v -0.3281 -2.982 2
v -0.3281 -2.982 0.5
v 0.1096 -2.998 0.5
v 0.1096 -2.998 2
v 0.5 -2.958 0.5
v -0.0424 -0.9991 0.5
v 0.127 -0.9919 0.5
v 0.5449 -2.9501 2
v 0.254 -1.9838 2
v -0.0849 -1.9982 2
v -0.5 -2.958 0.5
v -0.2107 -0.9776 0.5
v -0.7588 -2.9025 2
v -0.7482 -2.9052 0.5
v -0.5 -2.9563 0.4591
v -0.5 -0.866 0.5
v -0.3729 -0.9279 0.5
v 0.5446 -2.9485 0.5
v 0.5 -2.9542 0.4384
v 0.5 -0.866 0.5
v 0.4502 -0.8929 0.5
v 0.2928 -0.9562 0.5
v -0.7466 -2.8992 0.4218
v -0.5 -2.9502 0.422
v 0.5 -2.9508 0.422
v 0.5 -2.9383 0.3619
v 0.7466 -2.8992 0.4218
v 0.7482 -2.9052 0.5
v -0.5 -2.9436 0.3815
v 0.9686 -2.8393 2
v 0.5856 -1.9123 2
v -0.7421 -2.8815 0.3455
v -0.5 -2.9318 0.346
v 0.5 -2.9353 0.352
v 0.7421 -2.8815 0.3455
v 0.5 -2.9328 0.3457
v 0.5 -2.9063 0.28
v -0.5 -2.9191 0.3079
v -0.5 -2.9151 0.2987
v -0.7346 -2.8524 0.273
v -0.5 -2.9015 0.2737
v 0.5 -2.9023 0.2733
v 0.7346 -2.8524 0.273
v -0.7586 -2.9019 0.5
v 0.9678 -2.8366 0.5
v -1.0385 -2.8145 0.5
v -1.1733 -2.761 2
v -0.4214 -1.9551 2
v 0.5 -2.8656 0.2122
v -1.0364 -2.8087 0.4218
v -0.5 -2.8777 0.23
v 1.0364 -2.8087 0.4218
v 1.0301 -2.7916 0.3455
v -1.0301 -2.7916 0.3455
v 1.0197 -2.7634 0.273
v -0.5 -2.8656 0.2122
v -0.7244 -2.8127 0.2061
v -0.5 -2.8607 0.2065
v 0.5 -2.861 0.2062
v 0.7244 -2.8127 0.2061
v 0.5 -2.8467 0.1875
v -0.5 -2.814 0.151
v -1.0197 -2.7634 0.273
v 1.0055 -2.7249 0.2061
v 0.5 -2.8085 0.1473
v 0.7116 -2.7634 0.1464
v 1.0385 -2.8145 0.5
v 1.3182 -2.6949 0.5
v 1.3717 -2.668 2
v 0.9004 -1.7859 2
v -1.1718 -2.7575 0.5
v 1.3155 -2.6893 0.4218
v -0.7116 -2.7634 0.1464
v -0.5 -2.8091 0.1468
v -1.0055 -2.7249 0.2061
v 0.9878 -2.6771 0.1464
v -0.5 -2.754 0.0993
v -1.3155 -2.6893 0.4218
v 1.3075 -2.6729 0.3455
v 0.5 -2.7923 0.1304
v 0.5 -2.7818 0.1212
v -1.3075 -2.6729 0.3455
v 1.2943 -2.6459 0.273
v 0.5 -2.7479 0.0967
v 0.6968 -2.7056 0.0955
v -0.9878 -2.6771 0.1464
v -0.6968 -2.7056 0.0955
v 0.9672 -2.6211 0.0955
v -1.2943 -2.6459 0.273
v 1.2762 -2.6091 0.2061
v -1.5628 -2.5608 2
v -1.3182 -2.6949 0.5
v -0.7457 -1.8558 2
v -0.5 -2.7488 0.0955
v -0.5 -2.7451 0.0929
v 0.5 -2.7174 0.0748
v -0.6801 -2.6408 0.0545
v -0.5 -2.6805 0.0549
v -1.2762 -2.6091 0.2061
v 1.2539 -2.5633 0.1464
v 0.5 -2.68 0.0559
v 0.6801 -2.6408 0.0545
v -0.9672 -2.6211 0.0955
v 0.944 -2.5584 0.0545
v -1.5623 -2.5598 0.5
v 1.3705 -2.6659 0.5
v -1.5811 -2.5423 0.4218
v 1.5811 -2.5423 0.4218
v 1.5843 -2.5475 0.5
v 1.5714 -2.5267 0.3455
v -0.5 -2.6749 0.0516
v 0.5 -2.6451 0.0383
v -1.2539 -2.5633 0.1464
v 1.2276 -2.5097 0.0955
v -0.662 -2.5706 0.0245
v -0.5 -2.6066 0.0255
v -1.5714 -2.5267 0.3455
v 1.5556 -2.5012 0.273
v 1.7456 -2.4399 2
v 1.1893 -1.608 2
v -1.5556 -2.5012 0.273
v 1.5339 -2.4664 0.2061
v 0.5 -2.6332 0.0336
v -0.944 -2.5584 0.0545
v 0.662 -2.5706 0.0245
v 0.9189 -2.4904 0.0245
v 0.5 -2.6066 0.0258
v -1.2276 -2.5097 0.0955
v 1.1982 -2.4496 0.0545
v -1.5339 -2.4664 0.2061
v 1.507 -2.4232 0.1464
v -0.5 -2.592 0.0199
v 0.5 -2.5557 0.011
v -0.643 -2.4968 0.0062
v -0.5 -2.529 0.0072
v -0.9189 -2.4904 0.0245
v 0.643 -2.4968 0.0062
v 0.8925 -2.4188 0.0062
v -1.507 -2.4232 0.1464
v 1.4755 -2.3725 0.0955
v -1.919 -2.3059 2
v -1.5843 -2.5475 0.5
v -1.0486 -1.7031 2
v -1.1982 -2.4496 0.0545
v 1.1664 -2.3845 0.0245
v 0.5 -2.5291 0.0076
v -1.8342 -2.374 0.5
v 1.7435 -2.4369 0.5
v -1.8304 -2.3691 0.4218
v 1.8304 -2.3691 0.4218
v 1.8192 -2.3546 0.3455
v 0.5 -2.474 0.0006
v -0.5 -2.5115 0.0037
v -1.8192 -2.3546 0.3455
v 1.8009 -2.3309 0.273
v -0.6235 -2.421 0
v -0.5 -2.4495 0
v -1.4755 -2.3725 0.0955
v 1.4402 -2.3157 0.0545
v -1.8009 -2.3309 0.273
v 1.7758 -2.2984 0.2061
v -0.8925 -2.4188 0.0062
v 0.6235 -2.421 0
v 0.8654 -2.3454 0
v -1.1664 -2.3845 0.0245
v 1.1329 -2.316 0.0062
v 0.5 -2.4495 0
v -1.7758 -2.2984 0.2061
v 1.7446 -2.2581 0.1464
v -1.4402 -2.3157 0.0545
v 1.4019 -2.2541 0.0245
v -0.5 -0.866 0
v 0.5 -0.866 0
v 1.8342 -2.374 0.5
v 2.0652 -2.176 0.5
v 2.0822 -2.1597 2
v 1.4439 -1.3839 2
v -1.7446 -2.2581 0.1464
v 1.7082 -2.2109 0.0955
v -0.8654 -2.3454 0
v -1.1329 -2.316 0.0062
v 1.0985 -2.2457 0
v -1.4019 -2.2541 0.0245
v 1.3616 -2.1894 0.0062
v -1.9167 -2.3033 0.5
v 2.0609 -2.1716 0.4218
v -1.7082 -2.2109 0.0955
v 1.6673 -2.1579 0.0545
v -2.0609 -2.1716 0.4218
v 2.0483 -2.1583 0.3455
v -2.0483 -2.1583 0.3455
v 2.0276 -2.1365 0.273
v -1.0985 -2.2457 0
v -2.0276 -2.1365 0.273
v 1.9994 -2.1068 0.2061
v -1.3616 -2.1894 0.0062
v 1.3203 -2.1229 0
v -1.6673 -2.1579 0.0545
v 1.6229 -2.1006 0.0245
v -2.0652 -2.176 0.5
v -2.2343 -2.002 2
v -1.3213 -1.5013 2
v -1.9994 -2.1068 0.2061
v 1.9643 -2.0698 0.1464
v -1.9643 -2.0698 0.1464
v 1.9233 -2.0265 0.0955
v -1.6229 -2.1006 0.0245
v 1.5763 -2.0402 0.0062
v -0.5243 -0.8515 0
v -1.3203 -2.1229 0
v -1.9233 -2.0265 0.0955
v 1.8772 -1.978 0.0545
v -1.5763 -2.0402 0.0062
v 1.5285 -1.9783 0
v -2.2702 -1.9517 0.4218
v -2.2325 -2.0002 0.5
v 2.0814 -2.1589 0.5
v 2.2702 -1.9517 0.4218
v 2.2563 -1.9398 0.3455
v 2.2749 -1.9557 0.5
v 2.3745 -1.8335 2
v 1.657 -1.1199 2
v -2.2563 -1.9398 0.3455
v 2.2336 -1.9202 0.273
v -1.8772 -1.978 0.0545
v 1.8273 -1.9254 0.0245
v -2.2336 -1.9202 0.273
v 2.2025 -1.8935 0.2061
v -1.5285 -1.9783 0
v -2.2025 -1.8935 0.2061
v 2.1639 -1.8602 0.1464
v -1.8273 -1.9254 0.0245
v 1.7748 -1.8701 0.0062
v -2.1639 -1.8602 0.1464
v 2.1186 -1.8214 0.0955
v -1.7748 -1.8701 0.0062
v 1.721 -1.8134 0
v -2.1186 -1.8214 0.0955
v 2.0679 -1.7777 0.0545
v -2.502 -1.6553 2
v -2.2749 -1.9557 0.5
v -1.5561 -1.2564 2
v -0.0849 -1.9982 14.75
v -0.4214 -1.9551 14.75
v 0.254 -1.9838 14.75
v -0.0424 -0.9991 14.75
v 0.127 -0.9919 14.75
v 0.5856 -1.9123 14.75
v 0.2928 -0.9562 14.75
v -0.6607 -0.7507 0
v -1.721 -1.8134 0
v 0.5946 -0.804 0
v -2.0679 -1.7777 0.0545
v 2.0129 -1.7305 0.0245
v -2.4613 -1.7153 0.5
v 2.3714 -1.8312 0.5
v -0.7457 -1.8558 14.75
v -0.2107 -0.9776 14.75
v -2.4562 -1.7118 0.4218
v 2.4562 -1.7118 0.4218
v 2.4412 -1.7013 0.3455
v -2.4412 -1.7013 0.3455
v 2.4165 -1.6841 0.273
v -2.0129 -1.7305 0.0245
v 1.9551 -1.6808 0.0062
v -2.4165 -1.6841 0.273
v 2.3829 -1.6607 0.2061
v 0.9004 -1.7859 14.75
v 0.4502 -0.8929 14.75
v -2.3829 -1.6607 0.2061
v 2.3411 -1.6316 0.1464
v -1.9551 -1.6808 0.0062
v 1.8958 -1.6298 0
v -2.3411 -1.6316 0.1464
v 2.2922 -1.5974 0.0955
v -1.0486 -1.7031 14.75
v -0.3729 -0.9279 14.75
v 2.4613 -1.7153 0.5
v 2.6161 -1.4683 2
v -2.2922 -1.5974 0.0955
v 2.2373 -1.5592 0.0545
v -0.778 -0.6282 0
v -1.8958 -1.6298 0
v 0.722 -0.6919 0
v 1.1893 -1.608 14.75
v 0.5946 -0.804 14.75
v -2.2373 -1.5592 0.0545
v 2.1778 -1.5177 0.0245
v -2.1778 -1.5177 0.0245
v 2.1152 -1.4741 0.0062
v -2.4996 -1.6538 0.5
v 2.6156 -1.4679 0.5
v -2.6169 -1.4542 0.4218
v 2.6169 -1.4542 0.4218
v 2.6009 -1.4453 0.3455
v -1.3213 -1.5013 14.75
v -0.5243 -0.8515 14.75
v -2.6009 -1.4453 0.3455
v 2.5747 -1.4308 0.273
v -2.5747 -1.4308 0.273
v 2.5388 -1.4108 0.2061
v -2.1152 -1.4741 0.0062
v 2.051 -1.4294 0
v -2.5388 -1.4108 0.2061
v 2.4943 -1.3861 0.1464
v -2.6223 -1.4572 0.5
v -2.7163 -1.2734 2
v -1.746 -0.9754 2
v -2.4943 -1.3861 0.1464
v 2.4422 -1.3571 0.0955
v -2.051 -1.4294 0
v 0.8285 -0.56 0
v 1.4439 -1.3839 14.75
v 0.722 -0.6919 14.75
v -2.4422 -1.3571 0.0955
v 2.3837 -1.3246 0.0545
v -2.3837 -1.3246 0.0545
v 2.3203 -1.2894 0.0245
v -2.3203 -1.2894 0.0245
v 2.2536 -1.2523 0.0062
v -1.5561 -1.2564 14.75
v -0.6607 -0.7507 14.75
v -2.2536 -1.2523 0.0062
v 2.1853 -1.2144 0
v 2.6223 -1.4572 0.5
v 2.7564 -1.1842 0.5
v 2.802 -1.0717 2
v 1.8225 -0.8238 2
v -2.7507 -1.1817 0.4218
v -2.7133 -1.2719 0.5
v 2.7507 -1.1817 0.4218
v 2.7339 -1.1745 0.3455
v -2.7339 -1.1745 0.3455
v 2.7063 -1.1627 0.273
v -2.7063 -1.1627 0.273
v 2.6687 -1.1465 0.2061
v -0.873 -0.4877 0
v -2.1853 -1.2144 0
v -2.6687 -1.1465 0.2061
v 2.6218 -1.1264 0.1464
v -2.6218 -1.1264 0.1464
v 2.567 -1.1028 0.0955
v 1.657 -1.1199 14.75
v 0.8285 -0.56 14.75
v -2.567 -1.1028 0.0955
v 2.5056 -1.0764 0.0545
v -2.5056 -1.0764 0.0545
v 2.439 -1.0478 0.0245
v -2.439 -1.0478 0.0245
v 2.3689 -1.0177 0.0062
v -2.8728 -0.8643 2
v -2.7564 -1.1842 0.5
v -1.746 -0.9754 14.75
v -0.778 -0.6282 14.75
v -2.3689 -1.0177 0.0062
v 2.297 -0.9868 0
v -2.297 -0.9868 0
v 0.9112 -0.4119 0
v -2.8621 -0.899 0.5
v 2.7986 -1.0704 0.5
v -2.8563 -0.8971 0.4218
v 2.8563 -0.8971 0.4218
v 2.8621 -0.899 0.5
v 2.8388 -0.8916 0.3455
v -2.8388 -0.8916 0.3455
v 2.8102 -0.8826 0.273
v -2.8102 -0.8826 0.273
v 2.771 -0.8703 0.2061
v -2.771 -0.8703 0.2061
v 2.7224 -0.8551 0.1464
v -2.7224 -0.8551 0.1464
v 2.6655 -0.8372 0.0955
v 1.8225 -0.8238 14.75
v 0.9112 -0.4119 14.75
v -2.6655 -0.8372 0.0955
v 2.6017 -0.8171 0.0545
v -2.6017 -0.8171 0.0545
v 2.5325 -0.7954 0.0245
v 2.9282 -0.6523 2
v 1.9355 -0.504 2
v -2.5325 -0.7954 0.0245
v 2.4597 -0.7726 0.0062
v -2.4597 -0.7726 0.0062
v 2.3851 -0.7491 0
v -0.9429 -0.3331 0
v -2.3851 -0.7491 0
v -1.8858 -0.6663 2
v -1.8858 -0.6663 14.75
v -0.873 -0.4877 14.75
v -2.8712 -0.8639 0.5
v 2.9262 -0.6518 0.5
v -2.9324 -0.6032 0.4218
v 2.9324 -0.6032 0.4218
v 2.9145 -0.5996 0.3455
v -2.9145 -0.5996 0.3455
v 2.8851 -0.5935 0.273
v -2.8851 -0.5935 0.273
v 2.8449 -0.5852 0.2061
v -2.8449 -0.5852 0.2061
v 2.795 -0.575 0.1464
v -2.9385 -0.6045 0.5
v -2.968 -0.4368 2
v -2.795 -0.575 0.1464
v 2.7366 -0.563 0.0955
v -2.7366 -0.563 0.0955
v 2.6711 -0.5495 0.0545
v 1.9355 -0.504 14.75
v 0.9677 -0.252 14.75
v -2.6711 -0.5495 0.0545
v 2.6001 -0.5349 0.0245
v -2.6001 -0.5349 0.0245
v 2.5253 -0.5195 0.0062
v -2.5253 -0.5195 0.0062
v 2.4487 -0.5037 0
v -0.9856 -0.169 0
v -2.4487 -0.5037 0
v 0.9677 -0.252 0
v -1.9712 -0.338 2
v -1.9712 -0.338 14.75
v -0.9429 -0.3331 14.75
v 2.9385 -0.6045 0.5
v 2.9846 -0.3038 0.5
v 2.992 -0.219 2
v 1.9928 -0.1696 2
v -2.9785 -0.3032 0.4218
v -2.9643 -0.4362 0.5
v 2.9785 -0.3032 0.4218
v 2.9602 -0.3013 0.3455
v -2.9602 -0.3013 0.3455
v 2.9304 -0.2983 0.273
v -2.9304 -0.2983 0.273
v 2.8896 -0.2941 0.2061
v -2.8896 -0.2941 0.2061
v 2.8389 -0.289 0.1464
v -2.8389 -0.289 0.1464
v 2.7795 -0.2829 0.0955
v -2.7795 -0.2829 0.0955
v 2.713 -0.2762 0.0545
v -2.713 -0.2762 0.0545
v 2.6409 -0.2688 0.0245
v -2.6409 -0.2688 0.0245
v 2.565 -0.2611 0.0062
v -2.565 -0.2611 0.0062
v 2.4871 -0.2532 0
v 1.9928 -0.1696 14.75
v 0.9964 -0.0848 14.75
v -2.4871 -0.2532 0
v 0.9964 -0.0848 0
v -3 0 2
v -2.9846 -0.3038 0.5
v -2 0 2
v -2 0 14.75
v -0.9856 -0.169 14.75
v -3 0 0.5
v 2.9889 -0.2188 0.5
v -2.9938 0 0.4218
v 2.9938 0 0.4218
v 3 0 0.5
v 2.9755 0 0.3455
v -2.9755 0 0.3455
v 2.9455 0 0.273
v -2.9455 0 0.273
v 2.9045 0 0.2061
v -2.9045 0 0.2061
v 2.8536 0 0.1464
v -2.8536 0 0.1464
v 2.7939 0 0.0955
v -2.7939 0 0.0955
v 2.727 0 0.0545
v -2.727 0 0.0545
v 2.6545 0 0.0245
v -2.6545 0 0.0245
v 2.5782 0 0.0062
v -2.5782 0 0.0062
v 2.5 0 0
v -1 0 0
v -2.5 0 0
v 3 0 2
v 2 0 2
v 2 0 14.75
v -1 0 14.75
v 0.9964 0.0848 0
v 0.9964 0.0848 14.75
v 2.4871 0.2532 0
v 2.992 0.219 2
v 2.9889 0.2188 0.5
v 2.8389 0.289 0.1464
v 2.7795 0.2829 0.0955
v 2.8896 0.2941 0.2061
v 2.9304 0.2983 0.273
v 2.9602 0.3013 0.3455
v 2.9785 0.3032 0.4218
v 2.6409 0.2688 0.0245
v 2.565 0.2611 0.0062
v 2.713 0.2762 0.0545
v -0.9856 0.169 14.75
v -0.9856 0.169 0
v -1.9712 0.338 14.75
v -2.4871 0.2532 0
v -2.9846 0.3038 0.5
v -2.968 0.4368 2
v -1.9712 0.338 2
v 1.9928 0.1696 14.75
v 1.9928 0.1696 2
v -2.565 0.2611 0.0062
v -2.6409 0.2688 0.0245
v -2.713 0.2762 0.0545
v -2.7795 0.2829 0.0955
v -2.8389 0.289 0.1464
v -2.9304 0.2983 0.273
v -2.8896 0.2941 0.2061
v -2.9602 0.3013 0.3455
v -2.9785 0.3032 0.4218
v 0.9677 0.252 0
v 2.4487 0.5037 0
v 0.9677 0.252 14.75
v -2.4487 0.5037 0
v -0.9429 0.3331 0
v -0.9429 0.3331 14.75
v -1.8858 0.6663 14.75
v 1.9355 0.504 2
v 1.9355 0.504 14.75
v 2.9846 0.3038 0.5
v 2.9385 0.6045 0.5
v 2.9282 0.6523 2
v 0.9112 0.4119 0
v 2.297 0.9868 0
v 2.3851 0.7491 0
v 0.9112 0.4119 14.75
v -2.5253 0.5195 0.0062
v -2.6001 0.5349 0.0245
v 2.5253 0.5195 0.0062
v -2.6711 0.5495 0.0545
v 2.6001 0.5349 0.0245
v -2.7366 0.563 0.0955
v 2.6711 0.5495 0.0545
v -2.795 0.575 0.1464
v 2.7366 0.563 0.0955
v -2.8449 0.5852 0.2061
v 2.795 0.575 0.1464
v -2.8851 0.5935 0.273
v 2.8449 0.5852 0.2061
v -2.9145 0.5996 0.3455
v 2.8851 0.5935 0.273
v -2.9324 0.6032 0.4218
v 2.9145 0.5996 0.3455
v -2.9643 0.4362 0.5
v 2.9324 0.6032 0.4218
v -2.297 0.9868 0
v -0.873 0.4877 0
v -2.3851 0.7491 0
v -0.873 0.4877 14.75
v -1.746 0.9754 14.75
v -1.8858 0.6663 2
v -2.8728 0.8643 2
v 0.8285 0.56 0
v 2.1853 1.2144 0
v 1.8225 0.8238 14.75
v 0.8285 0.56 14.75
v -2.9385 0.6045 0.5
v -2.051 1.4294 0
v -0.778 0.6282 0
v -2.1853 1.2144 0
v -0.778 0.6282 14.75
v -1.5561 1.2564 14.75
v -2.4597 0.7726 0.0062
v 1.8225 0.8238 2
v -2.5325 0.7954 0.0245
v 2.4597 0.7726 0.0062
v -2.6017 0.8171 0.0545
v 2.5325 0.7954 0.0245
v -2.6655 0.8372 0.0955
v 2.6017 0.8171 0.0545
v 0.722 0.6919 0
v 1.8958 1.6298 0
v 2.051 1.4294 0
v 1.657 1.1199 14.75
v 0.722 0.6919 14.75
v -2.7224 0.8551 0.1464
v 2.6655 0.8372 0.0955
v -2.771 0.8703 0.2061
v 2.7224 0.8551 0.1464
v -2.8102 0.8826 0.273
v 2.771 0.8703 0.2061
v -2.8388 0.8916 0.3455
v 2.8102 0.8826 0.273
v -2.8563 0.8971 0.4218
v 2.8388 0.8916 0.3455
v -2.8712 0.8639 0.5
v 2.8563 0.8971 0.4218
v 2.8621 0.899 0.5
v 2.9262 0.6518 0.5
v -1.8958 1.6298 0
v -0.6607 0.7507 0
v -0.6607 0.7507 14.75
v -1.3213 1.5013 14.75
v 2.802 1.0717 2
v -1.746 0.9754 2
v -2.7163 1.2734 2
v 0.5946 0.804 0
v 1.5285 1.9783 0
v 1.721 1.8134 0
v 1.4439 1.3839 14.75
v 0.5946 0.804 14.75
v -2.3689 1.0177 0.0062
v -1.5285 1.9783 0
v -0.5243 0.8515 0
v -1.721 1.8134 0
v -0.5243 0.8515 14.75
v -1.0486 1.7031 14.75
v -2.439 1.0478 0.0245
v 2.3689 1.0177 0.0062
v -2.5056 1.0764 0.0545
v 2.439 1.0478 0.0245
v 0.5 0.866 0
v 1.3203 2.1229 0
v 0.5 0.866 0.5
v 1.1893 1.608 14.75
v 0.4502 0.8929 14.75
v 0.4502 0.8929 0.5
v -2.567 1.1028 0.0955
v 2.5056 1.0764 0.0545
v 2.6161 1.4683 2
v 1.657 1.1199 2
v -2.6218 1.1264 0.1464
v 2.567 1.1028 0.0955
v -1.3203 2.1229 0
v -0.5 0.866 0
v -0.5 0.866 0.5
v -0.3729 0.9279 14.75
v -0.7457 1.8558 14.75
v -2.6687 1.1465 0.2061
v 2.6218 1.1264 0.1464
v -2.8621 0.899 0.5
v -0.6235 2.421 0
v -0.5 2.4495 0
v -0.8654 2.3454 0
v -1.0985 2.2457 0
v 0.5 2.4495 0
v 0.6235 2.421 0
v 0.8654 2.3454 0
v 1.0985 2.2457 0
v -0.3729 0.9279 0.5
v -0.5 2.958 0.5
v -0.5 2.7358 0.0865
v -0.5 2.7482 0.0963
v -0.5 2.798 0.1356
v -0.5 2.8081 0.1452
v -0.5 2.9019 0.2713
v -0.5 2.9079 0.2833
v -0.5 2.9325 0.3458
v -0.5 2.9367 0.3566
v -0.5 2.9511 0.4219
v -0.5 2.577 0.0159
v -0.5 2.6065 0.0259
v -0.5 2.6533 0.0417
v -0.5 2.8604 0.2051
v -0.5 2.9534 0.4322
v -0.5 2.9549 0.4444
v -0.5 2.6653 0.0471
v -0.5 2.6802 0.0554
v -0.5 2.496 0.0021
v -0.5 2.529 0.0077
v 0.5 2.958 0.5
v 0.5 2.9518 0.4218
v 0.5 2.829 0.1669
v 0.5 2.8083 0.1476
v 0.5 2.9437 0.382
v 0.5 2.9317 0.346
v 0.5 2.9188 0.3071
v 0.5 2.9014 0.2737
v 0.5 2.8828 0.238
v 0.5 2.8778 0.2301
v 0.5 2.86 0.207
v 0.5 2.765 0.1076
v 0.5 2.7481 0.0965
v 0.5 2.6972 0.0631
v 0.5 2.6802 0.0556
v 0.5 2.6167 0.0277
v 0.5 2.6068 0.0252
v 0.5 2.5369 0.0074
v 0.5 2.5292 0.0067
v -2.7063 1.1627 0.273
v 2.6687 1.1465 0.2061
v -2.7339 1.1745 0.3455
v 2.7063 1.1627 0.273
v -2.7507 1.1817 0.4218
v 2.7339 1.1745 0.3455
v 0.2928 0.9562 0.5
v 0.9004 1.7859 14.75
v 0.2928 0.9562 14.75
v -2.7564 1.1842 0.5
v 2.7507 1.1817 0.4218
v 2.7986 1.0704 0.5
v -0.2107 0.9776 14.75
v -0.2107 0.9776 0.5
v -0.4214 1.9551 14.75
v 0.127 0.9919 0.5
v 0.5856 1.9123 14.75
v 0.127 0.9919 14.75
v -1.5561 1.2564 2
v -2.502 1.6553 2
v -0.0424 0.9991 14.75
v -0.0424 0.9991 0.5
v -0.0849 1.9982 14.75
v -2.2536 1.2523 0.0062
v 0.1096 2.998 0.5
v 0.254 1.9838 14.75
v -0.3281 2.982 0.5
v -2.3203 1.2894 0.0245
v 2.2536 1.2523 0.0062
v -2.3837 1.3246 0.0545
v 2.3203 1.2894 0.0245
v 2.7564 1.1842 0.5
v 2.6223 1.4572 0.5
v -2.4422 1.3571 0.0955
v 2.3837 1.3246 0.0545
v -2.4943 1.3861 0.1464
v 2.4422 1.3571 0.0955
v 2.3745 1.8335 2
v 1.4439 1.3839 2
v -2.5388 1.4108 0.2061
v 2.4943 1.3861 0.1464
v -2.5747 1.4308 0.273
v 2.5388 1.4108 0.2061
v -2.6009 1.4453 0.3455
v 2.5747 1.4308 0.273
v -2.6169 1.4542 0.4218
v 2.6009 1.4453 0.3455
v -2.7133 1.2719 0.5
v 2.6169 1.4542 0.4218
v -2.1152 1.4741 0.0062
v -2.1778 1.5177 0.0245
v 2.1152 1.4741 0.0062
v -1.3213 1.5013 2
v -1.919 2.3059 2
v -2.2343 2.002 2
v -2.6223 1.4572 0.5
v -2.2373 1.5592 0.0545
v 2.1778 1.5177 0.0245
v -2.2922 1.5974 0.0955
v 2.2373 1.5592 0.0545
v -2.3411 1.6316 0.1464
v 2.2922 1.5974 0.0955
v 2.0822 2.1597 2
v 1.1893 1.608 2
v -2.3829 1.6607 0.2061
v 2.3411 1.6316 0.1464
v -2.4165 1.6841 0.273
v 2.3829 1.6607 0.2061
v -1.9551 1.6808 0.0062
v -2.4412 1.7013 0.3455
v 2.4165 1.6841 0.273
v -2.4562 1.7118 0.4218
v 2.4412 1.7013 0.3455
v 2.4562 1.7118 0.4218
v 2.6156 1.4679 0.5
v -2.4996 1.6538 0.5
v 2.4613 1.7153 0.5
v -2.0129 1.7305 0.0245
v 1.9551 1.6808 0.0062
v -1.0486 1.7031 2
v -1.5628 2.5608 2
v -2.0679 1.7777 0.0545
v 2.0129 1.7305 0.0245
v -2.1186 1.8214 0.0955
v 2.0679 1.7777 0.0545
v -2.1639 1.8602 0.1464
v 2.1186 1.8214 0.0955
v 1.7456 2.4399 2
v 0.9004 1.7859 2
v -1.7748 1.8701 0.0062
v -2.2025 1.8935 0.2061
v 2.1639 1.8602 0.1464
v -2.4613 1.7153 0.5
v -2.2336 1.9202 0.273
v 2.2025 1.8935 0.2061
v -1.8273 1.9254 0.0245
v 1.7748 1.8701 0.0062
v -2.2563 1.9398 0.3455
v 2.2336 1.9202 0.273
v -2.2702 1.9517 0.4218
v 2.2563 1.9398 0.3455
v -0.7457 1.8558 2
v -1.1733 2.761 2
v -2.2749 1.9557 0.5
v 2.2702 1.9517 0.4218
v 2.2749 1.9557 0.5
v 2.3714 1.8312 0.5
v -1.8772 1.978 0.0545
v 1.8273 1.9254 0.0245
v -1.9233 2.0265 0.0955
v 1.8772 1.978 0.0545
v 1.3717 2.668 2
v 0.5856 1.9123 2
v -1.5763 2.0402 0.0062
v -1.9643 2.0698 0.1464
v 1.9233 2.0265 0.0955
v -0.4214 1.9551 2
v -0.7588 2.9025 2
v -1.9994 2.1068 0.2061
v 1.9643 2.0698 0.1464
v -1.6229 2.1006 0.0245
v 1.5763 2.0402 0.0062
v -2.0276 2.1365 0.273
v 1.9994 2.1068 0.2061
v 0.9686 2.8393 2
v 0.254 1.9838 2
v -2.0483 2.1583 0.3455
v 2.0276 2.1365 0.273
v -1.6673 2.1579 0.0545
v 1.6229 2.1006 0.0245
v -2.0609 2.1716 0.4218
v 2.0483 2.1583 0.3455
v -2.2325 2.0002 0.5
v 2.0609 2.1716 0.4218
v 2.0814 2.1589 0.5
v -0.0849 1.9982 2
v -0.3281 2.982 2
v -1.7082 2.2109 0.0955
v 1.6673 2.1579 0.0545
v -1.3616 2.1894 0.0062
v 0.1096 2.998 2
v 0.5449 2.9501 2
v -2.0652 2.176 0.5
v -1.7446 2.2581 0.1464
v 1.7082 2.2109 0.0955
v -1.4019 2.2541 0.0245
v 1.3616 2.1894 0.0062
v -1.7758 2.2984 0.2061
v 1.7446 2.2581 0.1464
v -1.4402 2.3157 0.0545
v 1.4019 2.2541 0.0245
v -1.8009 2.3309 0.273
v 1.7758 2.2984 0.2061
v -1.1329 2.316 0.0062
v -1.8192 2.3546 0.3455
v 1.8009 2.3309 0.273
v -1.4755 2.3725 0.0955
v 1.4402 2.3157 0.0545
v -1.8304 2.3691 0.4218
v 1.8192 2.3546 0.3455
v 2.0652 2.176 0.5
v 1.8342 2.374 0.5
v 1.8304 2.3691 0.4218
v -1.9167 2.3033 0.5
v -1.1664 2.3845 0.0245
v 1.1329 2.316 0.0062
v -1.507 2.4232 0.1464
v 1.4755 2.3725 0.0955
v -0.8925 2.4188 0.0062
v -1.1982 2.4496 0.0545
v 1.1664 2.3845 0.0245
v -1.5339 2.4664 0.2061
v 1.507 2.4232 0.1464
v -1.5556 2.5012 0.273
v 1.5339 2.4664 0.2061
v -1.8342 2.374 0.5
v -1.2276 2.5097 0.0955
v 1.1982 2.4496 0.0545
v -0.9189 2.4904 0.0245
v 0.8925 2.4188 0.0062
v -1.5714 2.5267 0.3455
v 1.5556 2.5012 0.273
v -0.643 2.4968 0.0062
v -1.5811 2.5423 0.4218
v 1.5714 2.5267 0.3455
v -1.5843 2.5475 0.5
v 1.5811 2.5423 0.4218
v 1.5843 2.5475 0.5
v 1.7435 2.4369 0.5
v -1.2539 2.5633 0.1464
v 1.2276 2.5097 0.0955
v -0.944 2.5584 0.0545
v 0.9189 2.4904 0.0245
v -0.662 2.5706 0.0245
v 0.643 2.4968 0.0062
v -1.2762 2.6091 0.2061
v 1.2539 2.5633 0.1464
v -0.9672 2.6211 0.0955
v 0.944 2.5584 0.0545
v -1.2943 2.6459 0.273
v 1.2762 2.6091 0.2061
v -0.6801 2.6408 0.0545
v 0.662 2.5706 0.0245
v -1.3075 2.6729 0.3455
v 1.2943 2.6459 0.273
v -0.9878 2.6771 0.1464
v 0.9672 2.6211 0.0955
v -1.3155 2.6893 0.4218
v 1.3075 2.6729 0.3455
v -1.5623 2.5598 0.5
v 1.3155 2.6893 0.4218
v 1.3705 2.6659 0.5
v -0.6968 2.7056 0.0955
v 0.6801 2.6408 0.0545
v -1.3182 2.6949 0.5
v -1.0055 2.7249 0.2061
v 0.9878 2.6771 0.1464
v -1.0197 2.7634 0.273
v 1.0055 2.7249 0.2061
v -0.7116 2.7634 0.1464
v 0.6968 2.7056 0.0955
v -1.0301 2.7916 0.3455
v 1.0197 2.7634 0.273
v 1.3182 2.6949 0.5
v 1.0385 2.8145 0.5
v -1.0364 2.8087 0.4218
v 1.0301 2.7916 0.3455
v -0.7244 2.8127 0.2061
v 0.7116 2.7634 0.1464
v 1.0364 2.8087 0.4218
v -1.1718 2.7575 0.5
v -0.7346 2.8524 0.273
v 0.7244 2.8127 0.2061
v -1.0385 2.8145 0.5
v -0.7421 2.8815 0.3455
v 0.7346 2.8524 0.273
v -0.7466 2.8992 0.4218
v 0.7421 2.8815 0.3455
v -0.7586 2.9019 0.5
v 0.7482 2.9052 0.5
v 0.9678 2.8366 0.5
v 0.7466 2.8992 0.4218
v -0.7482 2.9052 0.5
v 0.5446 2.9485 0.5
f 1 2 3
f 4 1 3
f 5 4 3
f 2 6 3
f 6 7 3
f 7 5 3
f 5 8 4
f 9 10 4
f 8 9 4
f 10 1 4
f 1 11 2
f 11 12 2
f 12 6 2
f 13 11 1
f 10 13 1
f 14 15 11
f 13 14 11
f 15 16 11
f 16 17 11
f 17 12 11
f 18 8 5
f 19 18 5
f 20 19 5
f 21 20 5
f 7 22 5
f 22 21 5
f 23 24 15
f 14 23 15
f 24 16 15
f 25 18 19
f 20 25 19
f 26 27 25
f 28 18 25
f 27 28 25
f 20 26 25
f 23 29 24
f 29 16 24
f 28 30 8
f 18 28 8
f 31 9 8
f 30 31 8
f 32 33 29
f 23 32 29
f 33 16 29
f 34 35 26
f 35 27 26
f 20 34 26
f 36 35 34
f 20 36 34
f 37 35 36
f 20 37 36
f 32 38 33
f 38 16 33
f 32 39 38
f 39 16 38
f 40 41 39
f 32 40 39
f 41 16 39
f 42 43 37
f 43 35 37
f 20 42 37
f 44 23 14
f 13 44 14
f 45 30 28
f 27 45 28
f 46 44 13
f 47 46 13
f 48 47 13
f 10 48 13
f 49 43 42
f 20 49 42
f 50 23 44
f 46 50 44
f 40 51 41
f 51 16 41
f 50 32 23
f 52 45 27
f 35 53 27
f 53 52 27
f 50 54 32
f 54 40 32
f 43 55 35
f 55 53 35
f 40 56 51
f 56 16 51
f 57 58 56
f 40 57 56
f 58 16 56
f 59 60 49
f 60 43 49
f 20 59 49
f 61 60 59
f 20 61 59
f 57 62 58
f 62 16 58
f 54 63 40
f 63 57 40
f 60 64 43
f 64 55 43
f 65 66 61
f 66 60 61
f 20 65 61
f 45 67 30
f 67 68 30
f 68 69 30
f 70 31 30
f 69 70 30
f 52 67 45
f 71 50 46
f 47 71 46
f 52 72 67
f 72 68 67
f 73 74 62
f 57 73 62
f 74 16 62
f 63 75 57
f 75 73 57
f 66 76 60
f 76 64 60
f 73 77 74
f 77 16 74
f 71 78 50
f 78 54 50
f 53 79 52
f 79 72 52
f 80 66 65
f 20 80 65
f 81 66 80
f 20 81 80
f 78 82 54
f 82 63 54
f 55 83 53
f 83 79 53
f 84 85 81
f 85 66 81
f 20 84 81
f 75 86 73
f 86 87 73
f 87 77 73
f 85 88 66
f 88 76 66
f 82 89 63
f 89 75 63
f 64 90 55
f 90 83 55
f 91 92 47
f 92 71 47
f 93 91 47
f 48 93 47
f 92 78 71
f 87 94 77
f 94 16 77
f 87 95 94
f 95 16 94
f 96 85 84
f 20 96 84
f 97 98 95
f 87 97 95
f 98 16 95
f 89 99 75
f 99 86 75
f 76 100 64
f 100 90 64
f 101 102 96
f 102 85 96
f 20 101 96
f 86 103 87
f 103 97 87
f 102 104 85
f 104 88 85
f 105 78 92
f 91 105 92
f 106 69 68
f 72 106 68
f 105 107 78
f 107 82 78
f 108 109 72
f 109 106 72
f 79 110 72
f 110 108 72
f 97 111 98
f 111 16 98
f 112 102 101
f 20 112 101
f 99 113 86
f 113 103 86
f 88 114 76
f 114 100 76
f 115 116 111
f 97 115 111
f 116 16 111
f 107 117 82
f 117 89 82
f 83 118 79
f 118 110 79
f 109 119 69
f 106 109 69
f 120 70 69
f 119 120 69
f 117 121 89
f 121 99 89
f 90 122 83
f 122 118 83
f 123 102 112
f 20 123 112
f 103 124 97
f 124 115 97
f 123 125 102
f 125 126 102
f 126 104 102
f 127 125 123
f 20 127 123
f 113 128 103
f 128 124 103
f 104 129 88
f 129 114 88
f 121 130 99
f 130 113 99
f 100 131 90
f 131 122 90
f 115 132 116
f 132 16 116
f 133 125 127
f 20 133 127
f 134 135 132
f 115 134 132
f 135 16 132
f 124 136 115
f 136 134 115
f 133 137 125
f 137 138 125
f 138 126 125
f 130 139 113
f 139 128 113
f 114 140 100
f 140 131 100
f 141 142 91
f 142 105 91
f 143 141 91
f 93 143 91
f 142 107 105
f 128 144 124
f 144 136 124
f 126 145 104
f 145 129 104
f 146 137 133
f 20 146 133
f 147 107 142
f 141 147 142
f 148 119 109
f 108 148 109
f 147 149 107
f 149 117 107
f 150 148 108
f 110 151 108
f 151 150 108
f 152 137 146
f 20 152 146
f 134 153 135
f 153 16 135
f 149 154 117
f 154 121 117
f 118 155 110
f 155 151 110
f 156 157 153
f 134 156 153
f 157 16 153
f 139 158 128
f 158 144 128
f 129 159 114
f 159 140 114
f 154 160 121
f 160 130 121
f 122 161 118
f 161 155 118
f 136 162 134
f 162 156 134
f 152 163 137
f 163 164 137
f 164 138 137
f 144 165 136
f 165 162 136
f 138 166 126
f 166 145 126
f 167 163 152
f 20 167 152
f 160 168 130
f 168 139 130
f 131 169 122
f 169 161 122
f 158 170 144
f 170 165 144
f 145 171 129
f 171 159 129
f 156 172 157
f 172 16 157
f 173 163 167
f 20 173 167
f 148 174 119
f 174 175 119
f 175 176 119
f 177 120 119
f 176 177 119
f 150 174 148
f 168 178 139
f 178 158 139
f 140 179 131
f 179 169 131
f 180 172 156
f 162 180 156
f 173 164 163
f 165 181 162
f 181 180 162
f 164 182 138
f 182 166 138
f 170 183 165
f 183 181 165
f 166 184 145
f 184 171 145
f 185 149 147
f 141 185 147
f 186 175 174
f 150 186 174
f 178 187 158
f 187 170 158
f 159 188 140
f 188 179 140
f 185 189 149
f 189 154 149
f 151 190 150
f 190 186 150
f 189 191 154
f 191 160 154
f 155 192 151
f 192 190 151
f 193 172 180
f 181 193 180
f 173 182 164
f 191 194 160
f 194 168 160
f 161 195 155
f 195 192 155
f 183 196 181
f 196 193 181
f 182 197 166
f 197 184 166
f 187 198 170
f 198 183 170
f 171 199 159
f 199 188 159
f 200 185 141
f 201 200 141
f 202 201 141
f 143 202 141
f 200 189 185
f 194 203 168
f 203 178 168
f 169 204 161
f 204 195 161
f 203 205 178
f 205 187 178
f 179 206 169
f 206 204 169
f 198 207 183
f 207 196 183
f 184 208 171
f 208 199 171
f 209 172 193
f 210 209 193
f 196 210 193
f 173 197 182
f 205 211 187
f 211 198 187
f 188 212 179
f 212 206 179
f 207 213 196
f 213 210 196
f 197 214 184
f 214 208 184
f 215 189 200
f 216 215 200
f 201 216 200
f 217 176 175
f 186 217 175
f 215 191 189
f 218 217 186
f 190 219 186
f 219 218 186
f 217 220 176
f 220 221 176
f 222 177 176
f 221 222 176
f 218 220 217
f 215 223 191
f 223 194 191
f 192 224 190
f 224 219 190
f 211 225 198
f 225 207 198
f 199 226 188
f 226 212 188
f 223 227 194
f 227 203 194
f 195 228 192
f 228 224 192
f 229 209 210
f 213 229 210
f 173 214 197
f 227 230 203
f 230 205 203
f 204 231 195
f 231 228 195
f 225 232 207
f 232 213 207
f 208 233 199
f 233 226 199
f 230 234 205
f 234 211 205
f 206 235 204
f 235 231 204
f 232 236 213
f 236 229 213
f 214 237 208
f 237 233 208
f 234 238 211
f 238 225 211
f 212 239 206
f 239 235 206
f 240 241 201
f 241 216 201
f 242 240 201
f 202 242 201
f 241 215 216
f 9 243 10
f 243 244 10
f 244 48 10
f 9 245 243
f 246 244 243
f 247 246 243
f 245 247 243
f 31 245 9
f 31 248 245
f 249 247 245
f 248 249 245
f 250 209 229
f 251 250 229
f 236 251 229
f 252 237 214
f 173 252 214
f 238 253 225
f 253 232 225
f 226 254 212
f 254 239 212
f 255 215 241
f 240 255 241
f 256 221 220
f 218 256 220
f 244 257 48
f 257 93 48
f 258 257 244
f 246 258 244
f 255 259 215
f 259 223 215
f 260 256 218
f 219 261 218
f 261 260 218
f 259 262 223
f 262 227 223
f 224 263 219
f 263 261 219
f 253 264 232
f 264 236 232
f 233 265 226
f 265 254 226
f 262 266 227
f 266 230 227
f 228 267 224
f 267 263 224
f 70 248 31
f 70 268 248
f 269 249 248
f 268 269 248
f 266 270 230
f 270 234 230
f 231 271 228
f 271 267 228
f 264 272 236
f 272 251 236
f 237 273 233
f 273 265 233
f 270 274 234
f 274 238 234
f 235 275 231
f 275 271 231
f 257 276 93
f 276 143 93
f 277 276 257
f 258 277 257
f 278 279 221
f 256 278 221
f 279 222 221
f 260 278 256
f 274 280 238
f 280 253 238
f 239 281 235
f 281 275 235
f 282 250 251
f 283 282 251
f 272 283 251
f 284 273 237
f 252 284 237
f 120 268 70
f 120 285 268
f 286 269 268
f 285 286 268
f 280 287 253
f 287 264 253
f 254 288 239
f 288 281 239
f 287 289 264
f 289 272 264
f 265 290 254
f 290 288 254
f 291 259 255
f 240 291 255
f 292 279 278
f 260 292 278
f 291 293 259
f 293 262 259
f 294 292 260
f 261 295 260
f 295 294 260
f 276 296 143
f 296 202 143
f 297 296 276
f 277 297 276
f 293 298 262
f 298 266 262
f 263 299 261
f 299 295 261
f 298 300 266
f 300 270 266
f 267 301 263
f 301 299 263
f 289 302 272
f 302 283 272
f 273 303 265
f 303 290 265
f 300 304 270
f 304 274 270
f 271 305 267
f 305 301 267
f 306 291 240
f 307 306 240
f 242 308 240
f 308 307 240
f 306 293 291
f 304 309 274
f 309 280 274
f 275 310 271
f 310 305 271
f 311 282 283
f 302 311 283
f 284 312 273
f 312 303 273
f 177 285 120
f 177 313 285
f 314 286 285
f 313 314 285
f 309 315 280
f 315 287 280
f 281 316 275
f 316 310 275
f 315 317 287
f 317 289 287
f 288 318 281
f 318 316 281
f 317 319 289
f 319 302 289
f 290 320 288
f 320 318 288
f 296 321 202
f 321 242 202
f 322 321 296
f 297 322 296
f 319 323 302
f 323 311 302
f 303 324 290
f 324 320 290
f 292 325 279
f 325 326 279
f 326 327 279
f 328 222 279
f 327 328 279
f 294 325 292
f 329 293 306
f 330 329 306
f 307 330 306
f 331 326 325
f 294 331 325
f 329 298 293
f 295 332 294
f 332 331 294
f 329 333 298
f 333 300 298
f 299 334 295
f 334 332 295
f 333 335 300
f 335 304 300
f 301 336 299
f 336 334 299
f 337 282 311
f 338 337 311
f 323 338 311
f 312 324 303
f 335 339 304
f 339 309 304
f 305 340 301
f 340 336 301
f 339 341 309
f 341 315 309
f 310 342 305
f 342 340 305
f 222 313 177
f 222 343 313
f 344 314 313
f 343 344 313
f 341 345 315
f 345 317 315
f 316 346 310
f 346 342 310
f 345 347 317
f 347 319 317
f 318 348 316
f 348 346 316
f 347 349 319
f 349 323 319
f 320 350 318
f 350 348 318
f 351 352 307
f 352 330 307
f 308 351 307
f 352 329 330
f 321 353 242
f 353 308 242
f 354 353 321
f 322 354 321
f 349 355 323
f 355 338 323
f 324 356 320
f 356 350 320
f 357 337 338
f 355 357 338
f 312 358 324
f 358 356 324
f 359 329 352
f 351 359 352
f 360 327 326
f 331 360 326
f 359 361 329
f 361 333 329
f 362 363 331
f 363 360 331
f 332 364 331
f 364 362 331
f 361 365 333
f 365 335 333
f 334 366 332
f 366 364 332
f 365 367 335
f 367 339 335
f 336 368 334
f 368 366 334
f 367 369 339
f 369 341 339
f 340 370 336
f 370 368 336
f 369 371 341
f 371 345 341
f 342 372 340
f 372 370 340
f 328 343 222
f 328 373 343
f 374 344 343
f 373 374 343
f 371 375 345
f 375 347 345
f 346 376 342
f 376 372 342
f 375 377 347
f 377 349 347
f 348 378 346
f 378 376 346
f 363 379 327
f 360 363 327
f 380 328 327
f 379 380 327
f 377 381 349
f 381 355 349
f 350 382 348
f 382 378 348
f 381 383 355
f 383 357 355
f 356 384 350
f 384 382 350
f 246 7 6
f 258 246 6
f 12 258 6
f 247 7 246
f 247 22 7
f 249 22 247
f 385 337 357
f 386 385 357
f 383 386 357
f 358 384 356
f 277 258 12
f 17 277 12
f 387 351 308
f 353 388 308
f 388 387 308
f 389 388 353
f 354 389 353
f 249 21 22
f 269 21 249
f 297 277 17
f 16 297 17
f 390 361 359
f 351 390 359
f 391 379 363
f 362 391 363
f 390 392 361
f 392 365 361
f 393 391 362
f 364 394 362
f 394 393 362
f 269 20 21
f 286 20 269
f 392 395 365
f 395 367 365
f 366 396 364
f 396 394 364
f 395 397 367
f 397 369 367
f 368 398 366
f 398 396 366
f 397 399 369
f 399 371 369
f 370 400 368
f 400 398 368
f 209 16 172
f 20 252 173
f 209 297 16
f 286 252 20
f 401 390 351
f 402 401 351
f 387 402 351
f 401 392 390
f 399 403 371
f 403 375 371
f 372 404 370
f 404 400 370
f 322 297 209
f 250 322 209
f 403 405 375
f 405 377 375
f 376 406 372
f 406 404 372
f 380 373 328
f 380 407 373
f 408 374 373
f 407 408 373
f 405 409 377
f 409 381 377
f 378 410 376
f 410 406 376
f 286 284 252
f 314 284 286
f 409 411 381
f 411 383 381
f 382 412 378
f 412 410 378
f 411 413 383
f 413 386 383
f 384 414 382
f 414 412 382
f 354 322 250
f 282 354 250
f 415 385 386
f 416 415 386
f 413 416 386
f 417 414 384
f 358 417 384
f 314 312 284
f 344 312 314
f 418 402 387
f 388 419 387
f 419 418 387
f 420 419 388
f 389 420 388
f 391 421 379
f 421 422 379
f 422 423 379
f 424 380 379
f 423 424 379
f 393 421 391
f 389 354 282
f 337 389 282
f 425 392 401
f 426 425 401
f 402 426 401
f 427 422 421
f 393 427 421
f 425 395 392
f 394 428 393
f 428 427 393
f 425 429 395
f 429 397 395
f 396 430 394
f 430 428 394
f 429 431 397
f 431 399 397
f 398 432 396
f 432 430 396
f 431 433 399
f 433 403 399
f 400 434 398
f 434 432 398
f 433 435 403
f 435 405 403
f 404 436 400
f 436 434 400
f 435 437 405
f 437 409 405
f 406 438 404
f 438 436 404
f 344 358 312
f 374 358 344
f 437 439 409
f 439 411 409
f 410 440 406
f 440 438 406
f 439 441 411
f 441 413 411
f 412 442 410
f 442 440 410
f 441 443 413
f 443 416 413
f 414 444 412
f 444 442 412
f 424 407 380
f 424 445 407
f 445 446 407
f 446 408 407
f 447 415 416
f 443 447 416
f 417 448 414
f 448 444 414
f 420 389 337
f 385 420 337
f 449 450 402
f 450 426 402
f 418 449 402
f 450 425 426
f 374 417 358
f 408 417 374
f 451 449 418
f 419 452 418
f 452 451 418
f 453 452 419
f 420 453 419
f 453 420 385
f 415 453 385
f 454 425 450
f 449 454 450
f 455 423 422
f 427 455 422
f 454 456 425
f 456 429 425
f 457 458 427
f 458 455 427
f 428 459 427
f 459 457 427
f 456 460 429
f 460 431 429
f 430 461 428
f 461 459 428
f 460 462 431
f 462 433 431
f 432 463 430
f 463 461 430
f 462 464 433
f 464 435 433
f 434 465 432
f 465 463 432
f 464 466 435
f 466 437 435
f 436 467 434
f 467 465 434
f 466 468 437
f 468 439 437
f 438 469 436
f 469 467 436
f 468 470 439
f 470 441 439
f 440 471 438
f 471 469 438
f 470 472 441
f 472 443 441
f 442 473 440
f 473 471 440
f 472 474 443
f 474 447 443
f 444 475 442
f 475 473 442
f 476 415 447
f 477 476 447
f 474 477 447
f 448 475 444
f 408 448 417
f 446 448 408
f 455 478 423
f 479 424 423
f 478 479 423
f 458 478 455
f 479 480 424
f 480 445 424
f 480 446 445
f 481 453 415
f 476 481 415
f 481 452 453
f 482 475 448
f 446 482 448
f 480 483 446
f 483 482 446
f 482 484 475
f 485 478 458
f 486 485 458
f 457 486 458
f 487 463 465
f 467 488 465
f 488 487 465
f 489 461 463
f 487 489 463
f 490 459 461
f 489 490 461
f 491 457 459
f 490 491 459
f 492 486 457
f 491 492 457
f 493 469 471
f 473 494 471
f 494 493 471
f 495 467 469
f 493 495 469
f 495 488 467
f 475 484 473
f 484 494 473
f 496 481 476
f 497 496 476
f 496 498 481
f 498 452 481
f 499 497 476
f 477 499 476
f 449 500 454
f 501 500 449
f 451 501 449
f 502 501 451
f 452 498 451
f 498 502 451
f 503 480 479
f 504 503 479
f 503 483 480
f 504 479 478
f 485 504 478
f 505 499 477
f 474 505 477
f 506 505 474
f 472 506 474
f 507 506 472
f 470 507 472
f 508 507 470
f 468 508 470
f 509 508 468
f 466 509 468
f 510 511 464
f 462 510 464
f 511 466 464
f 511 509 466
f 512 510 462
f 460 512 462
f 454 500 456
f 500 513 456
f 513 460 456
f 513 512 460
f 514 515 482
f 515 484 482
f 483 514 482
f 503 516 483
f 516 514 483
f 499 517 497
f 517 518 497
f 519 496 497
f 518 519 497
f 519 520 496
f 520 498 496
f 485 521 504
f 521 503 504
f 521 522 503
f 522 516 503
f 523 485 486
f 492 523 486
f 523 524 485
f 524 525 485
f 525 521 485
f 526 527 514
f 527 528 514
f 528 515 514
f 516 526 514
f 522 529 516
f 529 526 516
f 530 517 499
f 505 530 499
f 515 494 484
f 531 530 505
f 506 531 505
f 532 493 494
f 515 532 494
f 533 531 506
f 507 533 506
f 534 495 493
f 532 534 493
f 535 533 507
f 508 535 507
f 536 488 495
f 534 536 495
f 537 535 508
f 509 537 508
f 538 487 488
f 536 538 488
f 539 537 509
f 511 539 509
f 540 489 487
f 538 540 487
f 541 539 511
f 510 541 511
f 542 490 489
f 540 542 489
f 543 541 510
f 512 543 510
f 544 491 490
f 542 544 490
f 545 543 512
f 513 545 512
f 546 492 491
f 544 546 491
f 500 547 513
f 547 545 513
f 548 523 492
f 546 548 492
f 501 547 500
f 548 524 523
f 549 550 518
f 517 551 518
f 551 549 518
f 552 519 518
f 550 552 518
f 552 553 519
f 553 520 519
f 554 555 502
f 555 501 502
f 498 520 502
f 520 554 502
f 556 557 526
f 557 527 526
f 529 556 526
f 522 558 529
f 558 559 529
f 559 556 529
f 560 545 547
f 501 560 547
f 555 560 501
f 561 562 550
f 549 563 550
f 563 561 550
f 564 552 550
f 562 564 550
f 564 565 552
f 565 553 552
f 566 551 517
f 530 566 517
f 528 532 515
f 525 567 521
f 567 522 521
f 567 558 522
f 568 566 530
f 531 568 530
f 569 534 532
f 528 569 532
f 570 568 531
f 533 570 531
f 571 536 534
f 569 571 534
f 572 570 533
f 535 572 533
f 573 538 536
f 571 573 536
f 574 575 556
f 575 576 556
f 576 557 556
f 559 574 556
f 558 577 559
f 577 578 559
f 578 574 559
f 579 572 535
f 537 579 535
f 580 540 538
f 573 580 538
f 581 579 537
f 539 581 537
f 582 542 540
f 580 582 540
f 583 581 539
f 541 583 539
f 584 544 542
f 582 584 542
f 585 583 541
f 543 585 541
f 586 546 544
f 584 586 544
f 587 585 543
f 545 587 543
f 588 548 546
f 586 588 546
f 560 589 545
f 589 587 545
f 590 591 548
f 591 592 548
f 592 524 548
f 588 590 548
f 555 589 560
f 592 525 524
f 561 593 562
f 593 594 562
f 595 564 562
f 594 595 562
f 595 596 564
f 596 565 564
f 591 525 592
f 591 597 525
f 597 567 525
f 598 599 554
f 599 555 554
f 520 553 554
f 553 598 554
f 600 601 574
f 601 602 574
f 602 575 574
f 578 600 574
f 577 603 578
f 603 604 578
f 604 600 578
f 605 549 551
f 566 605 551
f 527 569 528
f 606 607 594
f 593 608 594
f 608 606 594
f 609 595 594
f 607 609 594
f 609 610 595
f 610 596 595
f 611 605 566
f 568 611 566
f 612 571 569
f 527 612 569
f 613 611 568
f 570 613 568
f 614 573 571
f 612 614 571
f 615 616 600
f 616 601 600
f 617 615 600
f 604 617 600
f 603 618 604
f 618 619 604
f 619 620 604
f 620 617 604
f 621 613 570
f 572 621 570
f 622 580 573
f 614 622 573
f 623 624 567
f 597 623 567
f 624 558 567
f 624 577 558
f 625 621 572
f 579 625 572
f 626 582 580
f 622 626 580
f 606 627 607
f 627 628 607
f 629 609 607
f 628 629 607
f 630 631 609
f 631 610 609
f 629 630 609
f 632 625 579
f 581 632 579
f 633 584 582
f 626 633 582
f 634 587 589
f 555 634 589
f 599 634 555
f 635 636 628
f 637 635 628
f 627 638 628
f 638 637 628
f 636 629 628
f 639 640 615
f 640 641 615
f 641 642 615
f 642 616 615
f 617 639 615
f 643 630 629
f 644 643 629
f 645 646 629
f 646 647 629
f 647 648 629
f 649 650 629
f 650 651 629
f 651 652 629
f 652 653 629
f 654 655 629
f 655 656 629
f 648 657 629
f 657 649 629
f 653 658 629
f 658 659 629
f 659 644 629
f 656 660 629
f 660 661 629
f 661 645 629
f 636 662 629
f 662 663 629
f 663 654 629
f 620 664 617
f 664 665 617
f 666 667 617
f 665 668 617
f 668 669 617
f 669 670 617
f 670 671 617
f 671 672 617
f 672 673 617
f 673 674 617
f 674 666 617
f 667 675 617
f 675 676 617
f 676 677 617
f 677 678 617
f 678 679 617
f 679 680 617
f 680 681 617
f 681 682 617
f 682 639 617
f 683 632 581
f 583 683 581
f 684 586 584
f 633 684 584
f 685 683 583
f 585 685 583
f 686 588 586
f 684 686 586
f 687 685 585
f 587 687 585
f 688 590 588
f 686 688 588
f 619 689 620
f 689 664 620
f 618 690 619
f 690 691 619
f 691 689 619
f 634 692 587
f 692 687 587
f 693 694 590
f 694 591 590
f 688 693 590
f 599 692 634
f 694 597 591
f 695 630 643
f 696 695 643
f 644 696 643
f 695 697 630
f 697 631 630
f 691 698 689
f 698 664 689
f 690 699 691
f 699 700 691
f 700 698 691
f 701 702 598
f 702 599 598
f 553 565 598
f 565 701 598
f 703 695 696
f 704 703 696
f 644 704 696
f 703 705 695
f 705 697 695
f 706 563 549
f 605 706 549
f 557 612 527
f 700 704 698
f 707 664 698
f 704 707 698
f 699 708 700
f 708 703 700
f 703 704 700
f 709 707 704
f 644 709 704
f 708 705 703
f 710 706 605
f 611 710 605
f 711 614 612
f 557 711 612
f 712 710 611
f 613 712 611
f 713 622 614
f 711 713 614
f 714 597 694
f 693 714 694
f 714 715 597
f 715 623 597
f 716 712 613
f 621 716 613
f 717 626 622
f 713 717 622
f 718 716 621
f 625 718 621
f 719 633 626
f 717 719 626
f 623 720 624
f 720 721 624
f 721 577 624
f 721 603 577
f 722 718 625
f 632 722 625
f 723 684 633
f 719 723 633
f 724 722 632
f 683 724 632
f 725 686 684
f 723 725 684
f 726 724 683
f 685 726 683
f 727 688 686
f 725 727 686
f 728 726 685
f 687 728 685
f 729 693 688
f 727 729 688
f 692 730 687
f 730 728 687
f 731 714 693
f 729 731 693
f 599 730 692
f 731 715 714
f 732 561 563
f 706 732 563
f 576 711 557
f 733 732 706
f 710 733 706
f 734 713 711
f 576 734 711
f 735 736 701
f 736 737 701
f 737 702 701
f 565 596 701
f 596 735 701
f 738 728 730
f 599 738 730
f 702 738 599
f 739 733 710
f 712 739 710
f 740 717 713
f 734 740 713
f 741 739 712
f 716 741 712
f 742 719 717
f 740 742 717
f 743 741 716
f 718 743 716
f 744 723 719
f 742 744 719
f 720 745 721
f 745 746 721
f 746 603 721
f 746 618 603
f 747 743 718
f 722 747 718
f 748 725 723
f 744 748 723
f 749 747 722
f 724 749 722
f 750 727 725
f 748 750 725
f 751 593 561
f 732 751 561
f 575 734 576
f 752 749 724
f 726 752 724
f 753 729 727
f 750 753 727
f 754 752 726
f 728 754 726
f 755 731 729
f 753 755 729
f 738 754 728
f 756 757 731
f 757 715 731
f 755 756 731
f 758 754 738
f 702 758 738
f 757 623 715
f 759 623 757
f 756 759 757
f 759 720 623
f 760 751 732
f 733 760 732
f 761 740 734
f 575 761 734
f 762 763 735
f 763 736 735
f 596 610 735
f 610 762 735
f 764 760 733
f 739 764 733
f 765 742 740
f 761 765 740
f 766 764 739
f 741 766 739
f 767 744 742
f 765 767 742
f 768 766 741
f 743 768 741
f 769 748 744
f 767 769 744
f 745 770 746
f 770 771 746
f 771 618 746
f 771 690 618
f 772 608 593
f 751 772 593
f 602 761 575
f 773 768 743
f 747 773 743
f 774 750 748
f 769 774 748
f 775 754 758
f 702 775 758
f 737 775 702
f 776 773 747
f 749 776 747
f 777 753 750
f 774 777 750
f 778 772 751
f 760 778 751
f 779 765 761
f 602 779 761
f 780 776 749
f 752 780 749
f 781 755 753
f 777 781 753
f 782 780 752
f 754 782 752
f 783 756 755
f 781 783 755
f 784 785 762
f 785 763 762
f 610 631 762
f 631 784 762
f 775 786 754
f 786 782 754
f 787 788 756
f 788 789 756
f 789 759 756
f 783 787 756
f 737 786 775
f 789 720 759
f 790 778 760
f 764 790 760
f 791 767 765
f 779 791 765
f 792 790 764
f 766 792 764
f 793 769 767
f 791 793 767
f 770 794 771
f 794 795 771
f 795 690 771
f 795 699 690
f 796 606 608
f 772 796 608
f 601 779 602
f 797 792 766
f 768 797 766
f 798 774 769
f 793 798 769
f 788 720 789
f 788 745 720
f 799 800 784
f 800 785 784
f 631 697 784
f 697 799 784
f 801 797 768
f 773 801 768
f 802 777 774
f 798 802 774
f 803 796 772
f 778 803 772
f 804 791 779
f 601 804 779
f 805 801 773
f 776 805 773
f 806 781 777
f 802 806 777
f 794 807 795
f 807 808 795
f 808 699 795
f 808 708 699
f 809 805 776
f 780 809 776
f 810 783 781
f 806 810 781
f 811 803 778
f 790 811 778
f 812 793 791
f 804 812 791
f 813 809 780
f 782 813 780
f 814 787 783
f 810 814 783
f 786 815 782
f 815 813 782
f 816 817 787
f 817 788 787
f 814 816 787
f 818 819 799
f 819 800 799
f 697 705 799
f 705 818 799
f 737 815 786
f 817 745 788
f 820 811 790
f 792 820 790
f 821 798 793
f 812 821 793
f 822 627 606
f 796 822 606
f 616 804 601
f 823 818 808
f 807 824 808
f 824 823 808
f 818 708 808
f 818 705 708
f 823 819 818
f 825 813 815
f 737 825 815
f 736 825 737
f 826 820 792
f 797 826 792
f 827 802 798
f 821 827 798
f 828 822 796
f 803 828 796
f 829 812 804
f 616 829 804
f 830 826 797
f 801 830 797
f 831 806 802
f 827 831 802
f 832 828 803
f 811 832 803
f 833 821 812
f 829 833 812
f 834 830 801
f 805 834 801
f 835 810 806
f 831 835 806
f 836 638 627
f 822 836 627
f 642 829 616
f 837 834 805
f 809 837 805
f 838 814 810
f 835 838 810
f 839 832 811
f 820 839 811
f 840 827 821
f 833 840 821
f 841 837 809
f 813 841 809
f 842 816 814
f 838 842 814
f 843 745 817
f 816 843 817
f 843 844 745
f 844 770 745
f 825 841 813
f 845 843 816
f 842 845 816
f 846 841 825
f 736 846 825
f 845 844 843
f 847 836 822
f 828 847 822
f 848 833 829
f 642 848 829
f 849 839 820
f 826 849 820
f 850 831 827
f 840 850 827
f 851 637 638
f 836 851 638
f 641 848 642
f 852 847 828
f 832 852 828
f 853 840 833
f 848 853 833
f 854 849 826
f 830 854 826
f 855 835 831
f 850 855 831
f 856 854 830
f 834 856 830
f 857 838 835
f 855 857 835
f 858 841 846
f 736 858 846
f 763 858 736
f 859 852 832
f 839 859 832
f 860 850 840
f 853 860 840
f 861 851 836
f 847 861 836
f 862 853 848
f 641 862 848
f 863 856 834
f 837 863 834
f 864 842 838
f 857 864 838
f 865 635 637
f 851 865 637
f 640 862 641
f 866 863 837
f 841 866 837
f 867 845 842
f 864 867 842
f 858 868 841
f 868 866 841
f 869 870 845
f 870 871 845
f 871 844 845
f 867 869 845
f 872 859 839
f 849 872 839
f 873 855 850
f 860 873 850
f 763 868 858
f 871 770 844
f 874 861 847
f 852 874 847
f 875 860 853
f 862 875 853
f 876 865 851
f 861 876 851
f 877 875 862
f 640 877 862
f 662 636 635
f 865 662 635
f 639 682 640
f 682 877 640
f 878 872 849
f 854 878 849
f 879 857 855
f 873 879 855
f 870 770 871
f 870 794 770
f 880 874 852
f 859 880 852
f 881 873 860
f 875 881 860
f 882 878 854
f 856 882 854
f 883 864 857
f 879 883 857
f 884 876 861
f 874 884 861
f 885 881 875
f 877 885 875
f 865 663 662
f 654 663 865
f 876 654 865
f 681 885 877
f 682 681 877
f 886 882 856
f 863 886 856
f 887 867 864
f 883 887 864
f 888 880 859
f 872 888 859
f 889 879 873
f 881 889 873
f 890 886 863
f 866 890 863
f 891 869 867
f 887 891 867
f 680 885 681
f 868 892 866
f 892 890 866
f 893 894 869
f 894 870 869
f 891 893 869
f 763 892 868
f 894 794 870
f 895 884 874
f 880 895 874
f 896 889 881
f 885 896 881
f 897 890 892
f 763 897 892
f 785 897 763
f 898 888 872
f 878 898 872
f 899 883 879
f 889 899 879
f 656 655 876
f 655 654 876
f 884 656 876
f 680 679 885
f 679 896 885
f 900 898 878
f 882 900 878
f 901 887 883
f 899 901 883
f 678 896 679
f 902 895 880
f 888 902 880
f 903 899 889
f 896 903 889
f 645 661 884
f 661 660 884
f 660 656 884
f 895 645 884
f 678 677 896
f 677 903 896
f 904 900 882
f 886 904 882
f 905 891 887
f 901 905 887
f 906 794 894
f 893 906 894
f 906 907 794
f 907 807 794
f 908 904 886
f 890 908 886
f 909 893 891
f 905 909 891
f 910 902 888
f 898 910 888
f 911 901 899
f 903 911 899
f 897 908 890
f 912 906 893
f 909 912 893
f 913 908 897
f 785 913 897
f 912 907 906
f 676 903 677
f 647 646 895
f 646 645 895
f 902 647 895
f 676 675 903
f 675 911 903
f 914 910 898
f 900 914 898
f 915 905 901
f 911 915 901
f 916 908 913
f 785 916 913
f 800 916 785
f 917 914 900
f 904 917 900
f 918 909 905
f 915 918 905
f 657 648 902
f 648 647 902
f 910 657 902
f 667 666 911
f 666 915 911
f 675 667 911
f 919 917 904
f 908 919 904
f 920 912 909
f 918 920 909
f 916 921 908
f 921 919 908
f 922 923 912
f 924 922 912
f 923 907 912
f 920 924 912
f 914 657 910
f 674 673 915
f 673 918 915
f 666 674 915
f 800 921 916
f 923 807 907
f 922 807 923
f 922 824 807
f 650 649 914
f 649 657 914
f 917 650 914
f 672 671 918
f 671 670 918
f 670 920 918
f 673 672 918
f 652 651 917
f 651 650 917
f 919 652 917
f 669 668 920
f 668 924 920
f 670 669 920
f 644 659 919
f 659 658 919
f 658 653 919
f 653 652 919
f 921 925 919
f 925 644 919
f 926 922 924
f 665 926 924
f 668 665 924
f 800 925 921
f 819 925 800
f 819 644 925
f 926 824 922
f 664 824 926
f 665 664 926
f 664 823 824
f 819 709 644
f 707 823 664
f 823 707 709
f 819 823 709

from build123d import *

# Parameters (mm, degrees)
SKETCH1_R               = 3
BOSS_EXTRUDE1_DEPTH     = 2
FILLET1_R               = 0.5
SKETCH2_R               = 2
BOSS_EXTRUDE2_DEPTH     = 12.75
CUT_EXTRUDE1_DEPTH      = 16.348045478
CUT_EXTRUDE1_DEPTH_BACK = 16.348045478
SKETCH3_R               = 1
SKETCH4_W               = 1
SKETCH4_H               = 6
CUT_EXTRUDE3_DEPTH      = 0.5


with BuildPart() as part:
    # Sketch1 → Boss-Extrude1 (new body)
    with BuildSketch(Plane.XY):
        Circle(SKETCH1_R)
    extrude(amount=BOSS_EXTRUDE1_DEPTH)

    # Fillet1
    fillet1_edges = [part.edges().sort_by_distance(p)[0] for p in [
        (-3, 0, 0),
    ]]
    fillet(fillet1_edges, radius=FILLET1_R)

    # Sketch2 → Boss-Extrude2 (add)
    with BuildSketch(Plane.XY.offset(2)):
        Circle(SKETCH2_R)
    extrude(amount=BOSS_EXTRUDE2_DEPTH)

    # Sketch3 → Cut-Extrude1 (cut, two sides: drawn at the far end of the back side and taken through both)
    with BuildSketch(Plane(origin=(0, 0, 0), x_dir=(-1, 0, 0), z_dir=(0, 0, -1)).offset(-CUT_EXTRUDE1_DEPTH_BACK)):
        Circle(SKETCH3_R)
    extrude(amount=CUT_EXTRUDE1_DEPTH + CUT_EXTRUDE1_DEPTH_BACK, mode=Mode.SUBTRACT)

    # Sketch4 → Cut-Extrude3 (cut)
    with BuildSketch(Plane(origin=(0, 0, 0), x_dir=(-1, 0, 0), z_dir=(0, 0, -1))):
        Rectangle(SKETCH4_W, SKETCH4_H)
    extrude(amount=-CUT_EXTRUDE3_DEPTH, mode=Mode.SUBTRACT)


solid = part.part
